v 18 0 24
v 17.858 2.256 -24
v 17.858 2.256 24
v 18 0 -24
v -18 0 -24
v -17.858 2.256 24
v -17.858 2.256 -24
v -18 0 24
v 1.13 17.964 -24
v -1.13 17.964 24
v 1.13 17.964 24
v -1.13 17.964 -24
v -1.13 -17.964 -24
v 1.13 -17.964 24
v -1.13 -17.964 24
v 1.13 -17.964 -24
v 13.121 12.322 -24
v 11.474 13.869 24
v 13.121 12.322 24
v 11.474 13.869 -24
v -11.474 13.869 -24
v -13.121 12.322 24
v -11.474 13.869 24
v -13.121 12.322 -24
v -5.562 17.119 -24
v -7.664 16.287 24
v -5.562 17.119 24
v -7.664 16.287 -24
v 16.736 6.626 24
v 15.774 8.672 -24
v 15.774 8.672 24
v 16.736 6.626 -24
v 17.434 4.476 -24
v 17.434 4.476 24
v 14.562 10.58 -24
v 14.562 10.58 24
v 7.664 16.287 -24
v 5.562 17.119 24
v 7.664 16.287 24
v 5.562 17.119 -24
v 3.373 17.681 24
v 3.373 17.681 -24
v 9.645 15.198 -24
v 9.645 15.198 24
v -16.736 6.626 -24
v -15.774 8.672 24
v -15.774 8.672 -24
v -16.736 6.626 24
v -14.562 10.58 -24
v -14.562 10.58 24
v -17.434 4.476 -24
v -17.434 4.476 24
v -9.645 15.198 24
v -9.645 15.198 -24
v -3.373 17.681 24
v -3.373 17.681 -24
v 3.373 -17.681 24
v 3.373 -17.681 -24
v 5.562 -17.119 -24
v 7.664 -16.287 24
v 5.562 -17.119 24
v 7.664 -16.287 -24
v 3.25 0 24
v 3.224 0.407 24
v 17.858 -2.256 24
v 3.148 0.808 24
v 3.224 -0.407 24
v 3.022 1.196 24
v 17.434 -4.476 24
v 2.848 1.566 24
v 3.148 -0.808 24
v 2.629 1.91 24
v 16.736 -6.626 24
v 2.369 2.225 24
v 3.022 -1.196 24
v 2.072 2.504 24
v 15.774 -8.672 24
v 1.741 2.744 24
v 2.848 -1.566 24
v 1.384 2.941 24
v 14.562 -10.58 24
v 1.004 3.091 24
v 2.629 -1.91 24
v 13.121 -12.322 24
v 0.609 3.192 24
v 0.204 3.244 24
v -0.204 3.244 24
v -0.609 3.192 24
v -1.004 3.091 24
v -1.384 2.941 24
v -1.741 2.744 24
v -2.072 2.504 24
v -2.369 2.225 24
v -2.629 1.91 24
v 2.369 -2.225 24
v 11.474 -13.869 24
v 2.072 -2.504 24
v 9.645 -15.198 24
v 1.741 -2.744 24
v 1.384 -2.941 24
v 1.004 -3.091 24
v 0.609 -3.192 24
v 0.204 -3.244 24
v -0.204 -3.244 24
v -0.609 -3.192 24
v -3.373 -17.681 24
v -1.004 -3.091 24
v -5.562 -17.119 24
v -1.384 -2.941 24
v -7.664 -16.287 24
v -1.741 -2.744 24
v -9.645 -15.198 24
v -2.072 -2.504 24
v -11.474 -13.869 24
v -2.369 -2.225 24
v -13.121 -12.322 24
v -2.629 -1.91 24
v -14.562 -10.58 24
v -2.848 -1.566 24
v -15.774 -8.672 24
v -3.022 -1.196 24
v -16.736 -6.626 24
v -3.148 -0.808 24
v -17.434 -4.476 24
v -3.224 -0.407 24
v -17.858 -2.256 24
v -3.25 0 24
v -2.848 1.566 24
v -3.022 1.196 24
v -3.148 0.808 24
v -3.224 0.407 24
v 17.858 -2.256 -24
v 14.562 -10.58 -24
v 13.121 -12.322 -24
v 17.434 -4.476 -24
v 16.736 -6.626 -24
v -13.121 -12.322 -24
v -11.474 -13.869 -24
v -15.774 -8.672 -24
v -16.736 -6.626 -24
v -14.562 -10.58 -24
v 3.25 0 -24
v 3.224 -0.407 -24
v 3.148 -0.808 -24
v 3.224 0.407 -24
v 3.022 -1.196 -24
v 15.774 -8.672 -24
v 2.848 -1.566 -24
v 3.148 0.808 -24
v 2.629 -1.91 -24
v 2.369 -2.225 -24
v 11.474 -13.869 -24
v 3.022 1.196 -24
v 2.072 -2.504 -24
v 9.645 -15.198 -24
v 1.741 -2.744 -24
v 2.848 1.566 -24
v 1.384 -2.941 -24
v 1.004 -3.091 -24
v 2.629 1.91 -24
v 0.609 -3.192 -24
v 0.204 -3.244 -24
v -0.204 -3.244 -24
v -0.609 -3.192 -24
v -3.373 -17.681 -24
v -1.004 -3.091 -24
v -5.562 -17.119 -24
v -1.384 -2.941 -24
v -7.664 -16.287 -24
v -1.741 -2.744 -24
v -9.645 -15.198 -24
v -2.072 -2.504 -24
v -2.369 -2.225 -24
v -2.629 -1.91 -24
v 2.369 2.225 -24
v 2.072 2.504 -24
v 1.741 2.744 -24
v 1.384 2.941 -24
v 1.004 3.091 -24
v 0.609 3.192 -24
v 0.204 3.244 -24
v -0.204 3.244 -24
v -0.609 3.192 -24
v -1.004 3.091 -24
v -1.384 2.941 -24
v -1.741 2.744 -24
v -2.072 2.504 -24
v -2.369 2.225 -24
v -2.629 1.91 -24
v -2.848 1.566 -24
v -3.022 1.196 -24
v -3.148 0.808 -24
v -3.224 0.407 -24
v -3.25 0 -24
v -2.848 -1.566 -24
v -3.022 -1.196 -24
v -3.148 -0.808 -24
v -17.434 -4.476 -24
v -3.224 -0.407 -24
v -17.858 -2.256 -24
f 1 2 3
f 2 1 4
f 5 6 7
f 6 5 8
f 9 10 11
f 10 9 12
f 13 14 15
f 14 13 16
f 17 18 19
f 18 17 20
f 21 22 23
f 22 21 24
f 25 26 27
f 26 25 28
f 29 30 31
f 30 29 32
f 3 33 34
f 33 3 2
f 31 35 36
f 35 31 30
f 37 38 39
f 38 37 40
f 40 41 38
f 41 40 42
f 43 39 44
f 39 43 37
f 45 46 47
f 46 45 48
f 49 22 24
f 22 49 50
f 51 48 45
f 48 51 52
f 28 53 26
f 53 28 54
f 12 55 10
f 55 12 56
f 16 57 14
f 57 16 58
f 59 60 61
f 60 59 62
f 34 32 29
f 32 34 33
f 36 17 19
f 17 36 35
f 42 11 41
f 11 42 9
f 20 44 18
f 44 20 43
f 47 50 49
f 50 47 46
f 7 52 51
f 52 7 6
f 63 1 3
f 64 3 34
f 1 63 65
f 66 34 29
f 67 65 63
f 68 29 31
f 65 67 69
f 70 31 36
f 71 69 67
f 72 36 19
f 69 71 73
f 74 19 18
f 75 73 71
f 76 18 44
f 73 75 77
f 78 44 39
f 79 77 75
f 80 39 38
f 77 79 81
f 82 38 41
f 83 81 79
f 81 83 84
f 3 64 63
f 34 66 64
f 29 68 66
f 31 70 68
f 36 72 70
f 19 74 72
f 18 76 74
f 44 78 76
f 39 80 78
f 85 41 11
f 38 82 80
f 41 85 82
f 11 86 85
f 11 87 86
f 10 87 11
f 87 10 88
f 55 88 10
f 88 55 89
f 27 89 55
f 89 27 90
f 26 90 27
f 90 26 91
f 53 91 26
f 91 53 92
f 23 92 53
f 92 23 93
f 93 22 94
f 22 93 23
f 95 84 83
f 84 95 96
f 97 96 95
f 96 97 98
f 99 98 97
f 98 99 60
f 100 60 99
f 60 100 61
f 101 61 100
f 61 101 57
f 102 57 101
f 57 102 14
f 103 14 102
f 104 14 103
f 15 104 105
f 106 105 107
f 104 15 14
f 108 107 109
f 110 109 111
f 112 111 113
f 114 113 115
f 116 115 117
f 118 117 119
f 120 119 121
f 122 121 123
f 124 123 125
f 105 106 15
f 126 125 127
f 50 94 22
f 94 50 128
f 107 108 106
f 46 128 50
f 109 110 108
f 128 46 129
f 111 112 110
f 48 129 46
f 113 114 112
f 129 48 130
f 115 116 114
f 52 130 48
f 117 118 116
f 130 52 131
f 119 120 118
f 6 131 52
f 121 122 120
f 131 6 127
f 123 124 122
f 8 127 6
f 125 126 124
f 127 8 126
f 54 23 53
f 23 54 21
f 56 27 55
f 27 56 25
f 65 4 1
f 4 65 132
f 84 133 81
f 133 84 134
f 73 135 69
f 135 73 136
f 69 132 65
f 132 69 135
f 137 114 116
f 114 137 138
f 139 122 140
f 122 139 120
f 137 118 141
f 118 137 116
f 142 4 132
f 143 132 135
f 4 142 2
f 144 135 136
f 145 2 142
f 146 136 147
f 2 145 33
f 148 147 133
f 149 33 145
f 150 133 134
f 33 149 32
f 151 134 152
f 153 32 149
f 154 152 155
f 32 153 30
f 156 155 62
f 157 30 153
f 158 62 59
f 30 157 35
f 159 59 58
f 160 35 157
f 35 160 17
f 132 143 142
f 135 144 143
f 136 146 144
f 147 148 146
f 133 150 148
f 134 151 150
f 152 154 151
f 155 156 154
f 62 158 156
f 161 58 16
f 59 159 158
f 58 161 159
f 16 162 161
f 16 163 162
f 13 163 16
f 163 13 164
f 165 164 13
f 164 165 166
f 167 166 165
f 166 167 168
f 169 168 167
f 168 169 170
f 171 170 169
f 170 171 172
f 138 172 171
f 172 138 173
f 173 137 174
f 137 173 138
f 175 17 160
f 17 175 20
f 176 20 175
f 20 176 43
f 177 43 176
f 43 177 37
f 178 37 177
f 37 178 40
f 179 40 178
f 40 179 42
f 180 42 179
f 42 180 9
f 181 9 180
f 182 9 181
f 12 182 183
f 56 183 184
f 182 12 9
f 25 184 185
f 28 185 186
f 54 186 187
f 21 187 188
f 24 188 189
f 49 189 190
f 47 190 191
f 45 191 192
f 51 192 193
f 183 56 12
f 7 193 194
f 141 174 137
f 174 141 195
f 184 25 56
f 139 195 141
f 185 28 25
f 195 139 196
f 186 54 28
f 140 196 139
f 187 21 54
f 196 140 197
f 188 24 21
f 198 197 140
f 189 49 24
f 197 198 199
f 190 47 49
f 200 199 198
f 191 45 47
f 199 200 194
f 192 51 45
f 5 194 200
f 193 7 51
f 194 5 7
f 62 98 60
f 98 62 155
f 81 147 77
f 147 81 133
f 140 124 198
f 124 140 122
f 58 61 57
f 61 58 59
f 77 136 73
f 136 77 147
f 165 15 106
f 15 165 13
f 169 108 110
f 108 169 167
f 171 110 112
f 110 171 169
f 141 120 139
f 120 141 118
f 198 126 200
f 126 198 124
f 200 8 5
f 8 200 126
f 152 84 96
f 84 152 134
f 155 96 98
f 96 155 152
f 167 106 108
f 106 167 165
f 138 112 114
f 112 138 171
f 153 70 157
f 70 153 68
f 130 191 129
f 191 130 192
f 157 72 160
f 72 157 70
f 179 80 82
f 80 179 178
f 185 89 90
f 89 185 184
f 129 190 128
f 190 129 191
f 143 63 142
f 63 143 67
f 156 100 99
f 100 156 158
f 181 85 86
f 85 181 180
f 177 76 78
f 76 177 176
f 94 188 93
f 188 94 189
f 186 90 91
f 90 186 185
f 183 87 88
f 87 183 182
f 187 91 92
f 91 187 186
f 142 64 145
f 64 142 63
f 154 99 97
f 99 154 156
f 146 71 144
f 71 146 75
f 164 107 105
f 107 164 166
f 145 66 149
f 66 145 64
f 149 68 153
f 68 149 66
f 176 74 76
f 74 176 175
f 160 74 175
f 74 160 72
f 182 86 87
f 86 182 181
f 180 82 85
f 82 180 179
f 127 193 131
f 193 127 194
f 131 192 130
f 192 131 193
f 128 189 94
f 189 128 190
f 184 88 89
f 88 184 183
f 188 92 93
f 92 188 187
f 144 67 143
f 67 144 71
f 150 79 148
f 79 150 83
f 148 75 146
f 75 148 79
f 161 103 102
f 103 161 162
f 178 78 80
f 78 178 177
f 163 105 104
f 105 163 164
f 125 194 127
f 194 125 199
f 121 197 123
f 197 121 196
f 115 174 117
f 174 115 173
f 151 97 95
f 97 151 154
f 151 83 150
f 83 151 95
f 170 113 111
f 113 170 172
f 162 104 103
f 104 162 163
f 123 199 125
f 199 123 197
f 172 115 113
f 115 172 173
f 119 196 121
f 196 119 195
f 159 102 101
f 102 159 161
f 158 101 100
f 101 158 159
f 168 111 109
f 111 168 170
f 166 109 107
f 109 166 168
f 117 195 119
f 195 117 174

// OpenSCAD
$fn = 50;


difference() {
	union() {
		translate(v = [0, 0, -24.0000000000]) {
			cylinder(h = 48, r = 18.0000000000);
		}
	}
	union() {
		translate(v = [0, 0, -100.0000000000]) {
			cylinder(h = 200, r = 3.2500000000);
		}
	}
}
